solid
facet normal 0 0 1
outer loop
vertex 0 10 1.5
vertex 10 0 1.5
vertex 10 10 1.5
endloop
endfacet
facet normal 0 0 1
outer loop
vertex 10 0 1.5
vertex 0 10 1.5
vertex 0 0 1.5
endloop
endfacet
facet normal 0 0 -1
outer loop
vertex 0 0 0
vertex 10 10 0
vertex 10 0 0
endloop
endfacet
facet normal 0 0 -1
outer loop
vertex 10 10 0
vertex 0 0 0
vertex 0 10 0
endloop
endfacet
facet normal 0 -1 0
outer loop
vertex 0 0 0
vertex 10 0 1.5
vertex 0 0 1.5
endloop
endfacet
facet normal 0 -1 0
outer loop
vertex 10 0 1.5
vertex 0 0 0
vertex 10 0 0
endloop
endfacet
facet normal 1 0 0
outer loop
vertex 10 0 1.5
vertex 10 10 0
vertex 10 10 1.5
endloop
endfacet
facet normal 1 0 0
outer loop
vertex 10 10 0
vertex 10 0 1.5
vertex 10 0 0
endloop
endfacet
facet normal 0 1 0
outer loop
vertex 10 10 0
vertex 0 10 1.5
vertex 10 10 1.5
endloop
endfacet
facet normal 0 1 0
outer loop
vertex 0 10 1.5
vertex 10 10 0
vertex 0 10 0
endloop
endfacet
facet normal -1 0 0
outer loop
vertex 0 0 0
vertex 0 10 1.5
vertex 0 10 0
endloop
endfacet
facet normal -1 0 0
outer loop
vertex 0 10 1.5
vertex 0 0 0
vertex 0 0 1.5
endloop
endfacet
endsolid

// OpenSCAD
/* Warning, this is a very basic generator with a lot of approximation 
input data : [LFBGA, 6RW, 10x10x1.5mm, 144, , B, C04-00631B]
generated by com.zoubworld.electronics.cad.model3d.Basic
Date : Sun Feb 15 10:50:49 CET 2026
*/

//body
color("black")
translate([0,0,0])
cube([10.0,10.0,1.5], center=false);
